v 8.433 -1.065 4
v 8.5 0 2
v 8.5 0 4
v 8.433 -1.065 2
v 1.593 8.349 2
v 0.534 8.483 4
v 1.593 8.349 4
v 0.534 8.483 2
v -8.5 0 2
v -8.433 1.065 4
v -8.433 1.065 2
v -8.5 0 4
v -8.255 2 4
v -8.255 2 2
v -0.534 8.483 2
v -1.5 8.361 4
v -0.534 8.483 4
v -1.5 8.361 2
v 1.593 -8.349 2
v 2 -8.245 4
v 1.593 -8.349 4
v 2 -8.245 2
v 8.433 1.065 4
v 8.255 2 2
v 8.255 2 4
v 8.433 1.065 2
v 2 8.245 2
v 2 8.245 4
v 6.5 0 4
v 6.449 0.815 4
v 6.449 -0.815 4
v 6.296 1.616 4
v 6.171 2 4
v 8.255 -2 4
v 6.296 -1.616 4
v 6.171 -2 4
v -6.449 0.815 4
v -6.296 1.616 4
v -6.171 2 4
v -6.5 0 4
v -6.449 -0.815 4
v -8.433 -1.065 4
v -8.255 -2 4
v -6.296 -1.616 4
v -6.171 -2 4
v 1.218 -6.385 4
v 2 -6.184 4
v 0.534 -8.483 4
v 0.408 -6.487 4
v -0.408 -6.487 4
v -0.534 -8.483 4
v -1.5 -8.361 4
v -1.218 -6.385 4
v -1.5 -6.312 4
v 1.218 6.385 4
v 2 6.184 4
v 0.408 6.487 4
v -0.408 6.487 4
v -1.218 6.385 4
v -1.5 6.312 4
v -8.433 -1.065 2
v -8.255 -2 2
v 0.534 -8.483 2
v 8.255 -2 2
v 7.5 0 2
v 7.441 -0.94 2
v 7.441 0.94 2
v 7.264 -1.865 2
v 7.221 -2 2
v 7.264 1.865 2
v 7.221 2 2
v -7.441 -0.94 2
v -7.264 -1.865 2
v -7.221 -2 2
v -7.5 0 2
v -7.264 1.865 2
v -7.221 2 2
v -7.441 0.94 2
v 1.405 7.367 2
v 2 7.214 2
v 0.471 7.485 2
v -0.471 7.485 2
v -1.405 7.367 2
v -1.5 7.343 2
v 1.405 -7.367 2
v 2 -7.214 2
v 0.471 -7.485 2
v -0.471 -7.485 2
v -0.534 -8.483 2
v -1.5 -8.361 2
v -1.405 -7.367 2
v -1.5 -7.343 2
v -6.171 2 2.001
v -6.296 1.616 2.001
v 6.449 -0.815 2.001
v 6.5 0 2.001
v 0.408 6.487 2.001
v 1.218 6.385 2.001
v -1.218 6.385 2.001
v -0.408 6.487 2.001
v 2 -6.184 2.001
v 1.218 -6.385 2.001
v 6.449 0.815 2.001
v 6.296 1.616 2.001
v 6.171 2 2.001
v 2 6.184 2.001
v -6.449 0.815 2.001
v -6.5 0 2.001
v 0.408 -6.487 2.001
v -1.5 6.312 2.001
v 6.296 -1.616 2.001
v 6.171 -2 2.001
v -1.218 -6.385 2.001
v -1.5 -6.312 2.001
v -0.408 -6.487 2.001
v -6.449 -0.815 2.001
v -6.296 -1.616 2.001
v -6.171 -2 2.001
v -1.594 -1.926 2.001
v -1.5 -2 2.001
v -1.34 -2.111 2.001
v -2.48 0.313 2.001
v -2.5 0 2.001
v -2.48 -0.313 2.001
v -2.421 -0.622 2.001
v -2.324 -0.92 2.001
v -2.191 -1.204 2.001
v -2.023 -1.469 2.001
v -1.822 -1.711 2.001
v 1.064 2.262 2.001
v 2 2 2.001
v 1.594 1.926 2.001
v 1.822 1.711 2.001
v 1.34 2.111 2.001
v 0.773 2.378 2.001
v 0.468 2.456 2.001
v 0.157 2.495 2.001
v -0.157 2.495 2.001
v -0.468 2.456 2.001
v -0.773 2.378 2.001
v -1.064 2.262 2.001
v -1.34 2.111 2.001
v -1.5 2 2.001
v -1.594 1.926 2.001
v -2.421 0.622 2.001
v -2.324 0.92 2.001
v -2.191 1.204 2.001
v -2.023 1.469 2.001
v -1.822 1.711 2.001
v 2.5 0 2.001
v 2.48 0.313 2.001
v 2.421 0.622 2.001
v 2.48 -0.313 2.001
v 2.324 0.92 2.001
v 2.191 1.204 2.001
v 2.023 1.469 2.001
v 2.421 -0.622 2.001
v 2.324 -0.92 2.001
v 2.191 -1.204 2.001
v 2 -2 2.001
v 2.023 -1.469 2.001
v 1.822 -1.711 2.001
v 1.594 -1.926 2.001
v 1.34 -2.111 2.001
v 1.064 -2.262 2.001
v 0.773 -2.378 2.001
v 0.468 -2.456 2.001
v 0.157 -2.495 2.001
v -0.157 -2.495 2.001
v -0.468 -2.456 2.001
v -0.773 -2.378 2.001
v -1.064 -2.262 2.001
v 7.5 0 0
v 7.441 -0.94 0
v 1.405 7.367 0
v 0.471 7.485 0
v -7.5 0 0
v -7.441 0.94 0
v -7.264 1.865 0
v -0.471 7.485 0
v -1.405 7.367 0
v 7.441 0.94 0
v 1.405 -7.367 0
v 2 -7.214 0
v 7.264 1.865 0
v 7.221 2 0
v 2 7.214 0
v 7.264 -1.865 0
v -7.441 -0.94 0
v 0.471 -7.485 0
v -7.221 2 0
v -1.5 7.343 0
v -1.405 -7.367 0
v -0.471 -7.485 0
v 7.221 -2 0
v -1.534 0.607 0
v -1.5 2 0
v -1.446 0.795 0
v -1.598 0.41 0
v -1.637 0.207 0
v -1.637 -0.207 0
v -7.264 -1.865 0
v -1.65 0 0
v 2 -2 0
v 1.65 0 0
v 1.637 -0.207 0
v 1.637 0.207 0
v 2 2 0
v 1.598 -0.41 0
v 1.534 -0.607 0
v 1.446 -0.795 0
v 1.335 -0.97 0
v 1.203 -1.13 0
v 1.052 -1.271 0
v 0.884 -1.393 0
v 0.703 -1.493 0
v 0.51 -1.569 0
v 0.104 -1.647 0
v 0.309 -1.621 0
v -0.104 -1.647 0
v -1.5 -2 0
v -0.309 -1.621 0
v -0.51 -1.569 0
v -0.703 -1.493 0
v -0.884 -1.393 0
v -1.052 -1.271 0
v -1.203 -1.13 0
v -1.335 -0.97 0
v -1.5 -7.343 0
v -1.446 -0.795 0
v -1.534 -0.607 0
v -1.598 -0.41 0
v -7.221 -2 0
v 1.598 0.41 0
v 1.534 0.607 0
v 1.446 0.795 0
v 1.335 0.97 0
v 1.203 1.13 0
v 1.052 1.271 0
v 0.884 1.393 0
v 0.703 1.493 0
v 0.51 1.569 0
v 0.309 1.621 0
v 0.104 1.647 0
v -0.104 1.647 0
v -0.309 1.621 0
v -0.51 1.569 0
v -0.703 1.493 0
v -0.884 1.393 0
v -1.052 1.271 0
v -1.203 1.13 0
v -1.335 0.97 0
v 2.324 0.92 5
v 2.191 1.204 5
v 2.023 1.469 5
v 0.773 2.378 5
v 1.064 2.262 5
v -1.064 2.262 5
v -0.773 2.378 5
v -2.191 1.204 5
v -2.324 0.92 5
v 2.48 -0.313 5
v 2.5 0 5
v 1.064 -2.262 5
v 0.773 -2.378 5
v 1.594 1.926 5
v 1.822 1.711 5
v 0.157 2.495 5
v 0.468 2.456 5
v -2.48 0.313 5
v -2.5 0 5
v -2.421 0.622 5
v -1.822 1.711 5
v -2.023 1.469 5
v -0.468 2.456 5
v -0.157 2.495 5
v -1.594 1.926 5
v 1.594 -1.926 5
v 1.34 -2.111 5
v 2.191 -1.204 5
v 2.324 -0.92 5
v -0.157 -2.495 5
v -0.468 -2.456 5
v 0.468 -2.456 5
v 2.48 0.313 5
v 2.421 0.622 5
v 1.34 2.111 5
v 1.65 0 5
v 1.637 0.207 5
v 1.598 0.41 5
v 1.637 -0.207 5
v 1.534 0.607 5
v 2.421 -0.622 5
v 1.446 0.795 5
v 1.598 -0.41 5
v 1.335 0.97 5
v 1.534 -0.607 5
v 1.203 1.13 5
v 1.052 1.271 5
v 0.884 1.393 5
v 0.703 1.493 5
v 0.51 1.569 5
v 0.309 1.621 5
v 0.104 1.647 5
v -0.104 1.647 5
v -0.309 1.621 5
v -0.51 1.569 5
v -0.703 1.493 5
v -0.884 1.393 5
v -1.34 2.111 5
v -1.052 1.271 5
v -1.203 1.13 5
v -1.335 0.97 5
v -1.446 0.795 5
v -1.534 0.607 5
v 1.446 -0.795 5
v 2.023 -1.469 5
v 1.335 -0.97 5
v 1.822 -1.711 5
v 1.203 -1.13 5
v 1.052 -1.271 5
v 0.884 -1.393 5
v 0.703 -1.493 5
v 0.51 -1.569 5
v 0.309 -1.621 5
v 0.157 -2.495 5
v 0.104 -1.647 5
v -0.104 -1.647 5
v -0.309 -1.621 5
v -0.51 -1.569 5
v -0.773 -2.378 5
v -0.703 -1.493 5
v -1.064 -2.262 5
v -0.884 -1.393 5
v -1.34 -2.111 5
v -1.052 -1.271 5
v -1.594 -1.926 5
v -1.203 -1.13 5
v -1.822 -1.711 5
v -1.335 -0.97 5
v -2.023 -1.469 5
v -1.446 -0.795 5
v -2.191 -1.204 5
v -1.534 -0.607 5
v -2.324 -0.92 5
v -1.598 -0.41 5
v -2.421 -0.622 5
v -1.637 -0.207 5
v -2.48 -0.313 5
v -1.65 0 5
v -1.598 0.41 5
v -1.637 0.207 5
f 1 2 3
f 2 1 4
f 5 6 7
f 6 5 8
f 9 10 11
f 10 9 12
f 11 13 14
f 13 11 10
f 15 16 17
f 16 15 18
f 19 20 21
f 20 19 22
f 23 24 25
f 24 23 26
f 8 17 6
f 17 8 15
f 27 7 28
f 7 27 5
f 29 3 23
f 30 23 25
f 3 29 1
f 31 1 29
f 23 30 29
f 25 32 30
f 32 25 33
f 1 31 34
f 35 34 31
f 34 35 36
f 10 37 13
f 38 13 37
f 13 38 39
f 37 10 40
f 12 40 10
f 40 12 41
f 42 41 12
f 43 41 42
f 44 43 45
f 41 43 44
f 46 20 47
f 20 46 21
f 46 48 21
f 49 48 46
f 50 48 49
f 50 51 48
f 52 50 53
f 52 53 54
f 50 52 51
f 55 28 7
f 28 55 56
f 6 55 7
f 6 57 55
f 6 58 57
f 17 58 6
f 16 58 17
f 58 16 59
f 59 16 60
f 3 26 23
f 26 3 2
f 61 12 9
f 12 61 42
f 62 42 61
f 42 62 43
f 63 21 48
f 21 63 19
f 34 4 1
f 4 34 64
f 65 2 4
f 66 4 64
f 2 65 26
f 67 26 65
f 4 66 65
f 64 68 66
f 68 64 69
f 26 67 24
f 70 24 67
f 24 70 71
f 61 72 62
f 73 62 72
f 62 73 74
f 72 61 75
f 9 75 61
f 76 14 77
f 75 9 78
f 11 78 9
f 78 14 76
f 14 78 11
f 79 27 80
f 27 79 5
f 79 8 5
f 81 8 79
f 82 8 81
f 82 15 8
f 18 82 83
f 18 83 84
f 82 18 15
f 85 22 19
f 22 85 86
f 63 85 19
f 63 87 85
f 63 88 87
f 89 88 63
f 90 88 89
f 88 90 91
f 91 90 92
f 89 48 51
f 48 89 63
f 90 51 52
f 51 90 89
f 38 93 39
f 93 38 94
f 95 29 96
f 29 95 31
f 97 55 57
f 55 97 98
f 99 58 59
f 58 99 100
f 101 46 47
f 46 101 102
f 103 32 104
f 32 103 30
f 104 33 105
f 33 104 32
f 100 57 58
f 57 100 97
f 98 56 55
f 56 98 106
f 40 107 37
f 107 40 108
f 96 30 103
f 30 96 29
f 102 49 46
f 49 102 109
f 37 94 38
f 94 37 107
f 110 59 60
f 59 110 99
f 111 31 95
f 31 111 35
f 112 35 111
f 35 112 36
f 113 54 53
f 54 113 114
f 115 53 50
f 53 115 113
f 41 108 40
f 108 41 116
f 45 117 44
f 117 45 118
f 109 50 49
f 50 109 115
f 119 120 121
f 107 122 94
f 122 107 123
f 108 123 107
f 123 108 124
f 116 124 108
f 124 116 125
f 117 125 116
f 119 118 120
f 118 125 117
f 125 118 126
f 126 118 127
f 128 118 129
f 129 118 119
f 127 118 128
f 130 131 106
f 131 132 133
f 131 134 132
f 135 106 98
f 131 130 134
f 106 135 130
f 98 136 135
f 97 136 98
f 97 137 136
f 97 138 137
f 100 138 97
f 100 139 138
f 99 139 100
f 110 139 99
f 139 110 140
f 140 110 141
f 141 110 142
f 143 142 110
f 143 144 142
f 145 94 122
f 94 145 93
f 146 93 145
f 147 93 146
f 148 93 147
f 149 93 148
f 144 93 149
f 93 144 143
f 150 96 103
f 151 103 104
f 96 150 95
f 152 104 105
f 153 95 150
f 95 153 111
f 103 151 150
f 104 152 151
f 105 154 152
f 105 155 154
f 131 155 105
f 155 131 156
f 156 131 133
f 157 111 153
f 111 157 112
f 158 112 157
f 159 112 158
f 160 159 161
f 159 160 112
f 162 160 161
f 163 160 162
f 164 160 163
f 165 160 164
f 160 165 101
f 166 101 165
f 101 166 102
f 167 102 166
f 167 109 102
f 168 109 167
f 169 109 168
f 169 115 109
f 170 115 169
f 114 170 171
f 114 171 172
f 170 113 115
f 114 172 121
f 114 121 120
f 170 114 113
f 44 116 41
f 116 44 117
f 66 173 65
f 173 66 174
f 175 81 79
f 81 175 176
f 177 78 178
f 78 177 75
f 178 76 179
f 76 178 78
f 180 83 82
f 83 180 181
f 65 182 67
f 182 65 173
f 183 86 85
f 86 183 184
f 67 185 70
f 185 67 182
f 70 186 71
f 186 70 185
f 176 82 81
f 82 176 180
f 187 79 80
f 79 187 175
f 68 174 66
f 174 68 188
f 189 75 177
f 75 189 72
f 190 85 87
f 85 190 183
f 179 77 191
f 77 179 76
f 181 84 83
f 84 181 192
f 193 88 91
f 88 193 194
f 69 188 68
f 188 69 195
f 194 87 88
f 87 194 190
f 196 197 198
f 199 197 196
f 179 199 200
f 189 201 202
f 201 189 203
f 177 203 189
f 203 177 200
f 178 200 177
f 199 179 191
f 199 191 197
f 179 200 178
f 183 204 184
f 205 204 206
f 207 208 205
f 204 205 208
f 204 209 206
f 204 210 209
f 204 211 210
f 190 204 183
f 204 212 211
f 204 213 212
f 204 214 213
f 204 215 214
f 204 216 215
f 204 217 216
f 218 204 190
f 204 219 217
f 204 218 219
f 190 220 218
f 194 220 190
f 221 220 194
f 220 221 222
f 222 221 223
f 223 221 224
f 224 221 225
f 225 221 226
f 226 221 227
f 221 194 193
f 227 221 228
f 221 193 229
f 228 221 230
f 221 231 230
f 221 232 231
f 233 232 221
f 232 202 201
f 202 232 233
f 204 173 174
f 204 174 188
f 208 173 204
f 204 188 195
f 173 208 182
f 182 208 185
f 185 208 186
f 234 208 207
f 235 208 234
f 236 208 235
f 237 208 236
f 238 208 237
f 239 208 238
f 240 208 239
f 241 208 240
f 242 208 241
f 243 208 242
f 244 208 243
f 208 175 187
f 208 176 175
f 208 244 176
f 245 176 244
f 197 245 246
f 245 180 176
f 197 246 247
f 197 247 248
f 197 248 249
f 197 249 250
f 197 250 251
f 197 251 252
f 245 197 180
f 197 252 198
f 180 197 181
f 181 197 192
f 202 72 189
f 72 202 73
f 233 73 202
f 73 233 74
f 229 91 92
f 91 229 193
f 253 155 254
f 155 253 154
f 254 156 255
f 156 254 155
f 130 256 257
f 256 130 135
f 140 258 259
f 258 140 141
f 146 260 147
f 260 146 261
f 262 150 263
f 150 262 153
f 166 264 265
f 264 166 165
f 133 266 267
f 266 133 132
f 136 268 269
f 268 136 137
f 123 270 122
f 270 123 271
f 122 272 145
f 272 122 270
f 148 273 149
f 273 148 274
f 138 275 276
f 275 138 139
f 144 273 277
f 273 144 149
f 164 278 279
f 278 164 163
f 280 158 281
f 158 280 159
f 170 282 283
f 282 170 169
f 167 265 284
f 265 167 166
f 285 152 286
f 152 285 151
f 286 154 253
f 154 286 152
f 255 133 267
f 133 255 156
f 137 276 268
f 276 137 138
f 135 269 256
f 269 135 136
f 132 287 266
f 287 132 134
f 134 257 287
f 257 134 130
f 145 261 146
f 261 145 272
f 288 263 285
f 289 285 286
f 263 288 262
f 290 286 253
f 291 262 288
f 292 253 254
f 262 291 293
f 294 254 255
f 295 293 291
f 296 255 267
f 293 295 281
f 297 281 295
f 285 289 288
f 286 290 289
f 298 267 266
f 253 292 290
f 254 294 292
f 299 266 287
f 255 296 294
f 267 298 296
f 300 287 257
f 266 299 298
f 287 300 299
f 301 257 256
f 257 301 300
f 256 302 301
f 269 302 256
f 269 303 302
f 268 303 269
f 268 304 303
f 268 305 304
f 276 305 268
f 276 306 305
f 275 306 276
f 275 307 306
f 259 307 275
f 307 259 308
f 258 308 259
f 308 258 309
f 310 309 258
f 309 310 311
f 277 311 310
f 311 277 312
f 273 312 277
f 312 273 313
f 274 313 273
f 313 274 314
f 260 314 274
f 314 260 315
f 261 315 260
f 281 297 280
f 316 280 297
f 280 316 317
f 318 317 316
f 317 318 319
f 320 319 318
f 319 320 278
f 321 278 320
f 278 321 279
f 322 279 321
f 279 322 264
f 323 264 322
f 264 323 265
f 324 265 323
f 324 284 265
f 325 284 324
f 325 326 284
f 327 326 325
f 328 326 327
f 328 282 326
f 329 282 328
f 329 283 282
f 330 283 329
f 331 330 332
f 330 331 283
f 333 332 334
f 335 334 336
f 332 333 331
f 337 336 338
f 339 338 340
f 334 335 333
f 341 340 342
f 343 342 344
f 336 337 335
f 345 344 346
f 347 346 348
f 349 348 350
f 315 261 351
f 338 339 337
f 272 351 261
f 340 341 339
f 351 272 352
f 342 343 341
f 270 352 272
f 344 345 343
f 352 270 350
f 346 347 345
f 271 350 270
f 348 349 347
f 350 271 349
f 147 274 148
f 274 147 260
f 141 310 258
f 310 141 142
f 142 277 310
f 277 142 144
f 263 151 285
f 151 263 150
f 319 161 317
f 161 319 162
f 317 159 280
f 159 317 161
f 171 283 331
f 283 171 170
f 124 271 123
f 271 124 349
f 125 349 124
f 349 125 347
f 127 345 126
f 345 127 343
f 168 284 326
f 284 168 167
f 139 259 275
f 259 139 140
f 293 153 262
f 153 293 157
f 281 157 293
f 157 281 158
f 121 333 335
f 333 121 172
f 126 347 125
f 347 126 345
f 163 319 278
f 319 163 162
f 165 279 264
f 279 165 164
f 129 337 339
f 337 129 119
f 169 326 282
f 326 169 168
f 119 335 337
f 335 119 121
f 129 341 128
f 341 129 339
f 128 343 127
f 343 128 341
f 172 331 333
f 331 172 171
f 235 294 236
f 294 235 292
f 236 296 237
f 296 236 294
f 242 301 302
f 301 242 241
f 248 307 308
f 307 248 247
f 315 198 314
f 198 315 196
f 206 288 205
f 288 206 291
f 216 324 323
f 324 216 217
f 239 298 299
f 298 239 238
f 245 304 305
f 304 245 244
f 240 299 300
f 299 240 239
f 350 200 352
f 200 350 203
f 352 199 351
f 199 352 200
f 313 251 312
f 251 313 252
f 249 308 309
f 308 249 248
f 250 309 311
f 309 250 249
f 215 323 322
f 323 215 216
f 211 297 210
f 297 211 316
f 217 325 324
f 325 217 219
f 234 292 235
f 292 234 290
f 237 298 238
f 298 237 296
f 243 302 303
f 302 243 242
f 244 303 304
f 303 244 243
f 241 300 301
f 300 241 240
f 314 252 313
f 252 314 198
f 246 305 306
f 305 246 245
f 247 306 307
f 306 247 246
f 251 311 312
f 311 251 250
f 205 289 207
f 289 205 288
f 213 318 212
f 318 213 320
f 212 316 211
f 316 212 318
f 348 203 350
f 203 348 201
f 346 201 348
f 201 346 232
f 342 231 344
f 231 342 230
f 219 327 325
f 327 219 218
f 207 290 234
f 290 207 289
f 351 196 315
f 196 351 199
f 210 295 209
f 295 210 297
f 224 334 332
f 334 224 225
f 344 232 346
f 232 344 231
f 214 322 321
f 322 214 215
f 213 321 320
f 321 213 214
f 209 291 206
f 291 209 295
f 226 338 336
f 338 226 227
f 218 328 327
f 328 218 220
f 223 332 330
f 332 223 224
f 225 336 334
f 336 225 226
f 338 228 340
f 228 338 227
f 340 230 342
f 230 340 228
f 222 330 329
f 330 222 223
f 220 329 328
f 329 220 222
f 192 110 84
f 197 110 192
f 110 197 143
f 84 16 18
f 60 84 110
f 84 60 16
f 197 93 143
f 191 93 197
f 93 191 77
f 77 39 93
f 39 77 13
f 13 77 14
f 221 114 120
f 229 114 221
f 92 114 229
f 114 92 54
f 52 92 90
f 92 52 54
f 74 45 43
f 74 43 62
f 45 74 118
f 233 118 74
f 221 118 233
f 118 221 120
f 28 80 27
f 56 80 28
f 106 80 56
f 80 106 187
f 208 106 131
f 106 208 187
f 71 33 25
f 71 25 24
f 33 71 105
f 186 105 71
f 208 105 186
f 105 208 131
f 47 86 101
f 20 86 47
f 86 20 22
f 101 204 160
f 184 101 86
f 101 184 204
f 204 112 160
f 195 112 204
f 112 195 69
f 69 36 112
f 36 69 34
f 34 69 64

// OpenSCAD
// file: params.scad
  base = 0.0;
  length = 50.0;
  len2 = length/2.0;
  width = 28.0;
  w2 = width/2.0;
  height = 14.0;
  thickness = 3.0;
  th2 = thickness/2.0;
  x1 = 25.0;
  y1 = 11.5;
  th_plate = 4.0;
  ha_thick = 4.0; // hose adapter plate thickness

  // depth of threadable hole
  scdepth = 4.0;

  // m3 screws
  rm3small = 1.4;  // threadable hole
  rm3large = 1.6;  // passthrough hole
  rm3shank = 1.65;  // passthrough hole - no threads
// main file
$fn=50;
include <params.scad>;
module DiskValve() {
  base = 0.0;
  dv_thick = 2.0;
    difference(){
      union() {
        cylinder(r=7.5, h=dv_thick);
        cylinder(r=2.5, h=5.0);
        difference(){
          translate([0.0,0.0,dv_thick])cylinder(r=8.5, h=dv_thick);
          translate([0.0,0.0,dv_thick+0.001])cylinder(r=6.5, h=dv_thick);
        };
      };
      translate([0.0,0.0,-0.01])cylinder(r=rm3shank,h=5.02);
      
      translate([-8.5,2.0,-0.02])cube([7.0,7.0,5.0]);
      translate([-8.5,-9.0,-0.02])cube([7.0,7.0,5.0]);
      translate([2.0,2.0,-0.02])cube([7.0,7.0,5.0]);
      translate([2.0,-9.0,-0.02])cube([7.0,7.0,5.0]);
    };
};
DiskValve();
